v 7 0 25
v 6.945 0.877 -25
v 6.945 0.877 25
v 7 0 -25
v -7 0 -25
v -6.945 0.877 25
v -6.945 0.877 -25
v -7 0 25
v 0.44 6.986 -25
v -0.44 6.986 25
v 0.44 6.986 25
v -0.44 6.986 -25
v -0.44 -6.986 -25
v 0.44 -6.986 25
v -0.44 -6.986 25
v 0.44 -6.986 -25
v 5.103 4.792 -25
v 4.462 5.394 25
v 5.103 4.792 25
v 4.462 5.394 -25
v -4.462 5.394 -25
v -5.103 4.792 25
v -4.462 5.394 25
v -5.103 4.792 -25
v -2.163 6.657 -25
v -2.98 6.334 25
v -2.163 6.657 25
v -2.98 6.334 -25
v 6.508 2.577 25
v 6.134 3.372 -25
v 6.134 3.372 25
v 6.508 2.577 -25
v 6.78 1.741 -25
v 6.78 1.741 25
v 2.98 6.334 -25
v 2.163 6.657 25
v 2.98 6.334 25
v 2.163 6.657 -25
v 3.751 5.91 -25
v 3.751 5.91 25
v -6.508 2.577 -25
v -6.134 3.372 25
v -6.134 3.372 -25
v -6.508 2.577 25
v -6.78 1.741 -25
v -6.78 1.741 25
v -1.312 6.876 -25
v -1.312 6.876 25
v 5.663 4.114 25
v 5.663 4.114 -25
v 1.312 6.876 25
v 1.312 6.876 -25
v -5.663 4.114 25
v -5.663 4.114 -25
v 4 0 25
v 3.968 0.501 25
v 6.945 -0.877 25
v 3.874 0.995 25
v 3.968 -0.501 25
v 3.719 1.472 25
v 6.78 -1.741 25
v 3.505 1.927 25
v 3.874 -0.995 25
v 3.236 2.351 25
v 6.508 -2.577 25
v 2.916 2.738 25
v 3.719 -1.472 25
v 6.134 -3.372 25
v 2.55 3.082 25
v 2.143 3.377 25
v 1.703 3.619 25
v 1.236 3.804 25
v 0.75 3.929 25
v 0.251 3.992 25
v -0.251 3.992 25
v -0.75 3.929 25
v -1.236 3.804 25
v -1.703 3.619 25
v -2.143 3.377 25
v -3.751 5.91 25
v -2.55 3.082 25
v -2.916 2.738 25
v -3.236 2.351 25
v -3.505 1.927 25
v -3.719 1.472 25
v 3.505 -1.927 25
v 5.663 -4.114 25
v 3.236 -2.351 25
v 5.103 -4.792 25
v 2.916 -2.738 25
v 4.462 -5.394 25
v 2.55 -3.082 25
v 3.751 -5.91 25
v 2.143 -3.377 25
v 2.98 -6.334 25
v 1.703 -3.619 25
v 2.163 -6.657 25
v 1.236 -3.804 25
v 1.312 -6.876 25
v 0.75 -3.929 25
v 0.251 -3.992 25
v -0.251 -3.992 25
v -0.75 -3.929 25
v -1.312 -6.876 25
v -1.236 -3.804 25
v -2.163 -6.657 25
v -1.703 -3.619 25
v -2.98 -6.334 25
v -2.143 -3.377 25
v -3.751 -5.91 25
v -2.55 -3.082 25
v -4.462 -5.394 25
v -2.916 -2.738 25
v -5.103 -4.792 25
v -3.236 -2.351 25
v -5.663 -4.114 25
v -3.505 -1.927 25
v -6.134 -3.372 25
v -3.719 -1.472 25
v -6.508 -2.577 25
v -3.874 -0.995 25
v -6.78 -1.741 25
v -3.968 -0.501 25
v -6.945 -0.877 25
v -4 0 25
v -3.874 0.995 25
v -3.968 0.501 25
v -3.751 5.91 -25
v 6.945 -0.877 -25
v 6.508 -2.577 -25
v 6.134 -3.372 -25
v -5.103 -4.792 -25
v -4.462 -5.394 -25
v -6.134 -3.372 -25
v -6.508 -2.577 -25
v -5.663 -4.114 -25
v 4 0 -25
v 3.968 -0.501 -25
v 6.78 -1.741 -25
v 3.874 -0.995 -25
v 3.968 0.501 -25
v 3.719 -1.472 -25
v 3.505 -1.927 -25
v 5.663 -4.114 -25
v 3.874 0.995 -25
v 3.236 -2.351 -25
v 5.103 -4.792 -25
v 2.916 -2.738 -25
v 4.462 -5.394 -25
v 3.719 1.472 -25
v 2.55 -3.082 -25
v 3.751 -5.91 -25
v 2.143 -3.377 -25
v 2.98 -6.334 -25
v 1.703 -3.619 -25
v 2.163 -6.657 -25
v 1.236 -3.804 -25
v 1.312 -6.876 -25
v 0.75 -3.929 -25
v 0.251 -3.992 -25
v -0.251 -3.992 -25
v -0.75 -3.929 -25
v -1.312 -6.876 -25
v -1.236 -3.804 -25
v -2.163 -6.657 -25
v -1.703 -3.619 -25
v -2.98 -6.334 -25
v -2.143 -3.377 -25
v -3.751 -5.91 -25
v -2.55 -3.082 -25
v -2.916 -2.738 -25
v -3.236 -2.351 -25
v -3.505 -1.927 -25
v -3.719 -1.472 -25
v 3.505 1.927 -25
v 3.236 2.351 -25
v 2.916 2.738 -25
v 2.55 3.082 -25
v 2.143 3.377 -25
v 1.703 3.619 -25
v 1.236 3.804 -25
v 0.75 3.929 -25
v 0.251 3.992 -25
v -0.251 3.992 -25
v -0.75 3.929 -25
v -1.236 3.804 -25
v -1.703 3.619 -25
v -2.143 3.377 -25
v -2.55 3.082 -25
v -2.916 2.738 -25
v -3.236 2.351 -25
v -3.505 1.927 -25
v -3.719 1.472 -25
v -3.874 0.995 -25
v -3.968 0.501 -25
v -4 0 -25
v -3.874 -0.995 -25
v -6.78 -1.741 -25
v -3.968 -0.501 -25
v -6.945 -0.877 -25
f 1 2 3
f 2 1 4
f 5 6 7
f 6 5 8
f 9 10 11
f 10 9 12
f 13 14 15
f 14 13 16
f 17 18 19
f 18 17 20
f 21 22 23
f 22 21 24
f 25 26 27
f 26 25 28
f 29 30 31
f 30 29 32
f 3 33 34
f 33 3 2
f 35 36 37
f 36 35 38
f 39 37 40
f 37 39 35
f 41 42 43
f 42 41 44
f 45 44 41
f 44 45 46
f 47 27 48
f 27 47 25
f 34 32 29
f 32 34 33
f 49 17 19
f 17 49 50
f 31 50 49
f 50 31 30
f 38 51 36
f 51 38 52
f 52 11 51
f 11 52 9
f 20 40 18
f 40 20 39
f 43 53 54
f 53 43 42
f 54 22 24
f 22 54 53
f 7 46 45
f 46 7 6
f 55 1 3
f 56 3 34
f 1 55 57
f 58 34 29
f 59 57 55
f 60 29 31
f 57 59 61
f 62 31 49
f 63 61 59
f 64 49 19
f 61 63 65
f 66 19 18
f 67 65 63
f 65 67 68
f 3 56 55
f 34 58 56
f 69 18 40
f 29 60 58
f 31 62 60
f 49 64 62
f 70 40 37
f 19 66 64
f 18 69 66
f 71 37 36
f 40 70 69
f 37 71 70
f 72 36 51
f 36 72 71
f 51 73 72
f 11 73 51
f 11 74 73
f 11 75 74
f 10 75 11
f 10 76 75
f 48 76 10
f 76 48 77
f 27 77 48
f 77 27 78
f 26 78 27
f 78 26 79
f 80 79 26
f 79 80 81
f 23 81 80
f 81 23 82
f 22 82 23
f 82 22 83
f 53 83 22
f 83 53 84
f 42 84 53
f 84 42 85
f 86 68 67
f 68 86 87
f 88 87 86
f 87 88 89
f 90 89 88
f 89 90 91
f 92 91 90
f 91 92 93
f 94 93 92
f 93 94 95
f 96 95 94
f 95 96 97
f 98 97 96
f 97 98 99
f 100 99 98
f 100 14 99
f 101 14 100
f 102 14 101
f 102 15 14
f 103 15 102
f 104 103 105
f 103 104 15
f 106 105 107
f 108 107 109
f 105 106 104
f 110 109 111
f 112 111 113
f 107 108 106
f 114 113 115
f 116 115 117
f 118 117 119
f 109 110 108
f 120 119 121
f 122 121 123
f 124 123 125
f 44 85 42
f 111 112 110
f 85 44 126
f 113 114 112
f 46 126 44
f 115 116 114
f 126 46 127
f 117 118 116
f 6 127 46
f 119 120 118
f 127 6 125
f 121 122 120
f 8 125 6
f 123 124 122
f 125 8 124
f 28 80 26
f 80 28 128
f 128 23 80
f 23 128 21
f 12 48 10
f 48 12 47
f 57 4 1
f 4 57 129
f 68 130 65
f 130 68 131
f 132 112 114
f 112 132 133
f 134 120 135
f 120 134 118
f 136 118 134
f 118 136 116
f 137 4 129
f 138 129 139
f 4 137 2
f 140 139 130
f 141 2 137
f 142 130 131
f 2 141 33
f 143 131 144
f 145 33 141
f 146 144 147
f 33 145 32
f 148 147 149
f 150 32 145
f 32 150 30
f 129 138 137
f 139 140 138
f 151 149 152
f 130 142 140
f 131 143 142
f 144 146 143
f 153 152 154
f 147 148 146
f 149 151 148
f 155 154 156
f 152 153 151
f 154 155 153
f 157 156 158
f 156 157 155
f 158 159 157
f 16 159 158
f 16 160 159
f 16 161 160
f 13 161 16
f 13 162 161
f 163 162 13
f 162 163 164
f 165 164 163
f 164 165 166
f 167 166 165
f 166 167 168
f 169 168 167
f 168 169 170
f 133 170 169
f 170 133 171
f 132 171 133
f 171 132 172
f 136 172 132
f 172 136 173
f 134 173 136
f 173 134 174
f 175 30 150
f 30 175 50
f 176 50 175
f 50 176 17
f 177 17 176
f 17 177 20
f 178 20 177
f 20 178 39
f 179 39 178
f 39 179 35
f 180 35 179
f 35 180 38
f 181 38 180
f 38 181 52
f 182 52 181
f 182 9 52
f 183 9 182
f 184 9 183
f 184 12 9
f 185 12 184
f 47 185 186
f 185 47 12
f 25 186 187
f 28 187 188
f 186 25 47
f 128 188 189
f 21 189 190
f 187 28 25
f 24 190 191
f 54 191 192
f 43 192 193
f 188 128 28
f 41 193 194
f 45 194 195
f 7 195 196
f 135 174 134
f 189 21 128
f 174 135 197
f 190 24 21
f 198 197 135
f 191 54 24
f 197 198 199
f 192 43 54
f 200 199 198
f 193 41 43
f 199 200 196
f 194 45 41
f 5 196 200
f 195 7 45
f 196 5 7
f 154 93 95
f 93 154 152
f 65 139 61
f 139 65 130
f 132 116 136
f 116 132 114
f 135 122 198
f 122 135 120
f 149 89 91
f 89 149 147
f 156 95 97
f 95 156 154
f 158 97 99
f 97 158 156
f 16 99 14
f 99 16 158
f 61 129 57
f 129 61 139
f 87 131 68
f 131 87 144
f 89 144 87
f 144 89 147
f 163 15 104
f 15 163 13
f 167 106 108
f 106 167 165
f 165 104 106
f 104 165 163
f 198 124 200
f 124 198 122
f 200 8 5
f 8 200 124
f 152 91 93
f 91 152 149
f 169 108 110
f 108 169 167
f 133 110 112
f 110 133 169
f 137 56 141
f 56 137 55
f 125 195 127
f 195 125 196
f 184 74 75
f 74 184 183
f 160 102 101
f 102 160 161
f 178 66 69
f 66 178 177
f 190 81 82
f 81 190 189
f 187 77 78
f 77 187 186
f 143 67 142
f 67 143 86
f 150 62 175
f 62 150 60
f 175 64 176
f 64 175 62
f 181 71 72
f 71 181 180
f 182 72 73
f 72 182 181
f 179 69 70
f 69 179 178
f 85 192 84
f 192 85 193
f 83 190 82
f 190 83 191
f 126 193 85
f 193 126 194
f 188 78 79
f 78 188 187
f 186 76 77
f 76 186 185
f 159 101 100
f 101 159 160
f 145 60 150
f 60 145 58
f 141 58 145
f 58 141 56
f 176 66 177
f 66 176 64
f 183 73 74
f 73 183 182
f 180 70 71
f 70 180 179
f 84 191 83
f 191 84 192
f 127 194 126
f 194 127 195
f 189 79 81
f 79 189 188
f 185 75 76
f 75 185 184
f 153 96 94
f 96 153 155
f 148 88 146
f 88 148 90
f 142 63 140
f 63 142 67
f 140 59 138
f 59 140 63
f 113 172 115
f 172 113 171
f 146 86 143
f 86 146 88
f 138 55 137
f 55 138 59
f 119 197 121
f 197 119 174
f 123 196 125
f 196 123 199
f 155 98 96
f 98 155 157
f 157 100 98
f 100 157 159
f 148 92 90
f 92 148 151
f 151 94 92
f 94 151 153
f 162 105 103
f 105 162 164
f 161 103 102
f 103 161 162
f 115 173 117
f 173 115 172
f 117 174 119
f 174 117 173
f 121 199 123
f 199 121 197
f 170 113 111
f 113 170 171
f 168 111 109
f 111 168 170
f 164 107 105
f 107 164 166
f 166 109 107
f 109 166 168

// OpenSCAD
$fn = 50;


difference() {
	union() {
		translate(v = [0, 0, -25.0000000000]) {
			cylinder(h = 50, r = 7.0000000000);
		}
	}
	union() {
		translate(v = [0, 0, -100.0000000000]) {
			cylinder(h = 200, r = 4);
		}
	}
}
